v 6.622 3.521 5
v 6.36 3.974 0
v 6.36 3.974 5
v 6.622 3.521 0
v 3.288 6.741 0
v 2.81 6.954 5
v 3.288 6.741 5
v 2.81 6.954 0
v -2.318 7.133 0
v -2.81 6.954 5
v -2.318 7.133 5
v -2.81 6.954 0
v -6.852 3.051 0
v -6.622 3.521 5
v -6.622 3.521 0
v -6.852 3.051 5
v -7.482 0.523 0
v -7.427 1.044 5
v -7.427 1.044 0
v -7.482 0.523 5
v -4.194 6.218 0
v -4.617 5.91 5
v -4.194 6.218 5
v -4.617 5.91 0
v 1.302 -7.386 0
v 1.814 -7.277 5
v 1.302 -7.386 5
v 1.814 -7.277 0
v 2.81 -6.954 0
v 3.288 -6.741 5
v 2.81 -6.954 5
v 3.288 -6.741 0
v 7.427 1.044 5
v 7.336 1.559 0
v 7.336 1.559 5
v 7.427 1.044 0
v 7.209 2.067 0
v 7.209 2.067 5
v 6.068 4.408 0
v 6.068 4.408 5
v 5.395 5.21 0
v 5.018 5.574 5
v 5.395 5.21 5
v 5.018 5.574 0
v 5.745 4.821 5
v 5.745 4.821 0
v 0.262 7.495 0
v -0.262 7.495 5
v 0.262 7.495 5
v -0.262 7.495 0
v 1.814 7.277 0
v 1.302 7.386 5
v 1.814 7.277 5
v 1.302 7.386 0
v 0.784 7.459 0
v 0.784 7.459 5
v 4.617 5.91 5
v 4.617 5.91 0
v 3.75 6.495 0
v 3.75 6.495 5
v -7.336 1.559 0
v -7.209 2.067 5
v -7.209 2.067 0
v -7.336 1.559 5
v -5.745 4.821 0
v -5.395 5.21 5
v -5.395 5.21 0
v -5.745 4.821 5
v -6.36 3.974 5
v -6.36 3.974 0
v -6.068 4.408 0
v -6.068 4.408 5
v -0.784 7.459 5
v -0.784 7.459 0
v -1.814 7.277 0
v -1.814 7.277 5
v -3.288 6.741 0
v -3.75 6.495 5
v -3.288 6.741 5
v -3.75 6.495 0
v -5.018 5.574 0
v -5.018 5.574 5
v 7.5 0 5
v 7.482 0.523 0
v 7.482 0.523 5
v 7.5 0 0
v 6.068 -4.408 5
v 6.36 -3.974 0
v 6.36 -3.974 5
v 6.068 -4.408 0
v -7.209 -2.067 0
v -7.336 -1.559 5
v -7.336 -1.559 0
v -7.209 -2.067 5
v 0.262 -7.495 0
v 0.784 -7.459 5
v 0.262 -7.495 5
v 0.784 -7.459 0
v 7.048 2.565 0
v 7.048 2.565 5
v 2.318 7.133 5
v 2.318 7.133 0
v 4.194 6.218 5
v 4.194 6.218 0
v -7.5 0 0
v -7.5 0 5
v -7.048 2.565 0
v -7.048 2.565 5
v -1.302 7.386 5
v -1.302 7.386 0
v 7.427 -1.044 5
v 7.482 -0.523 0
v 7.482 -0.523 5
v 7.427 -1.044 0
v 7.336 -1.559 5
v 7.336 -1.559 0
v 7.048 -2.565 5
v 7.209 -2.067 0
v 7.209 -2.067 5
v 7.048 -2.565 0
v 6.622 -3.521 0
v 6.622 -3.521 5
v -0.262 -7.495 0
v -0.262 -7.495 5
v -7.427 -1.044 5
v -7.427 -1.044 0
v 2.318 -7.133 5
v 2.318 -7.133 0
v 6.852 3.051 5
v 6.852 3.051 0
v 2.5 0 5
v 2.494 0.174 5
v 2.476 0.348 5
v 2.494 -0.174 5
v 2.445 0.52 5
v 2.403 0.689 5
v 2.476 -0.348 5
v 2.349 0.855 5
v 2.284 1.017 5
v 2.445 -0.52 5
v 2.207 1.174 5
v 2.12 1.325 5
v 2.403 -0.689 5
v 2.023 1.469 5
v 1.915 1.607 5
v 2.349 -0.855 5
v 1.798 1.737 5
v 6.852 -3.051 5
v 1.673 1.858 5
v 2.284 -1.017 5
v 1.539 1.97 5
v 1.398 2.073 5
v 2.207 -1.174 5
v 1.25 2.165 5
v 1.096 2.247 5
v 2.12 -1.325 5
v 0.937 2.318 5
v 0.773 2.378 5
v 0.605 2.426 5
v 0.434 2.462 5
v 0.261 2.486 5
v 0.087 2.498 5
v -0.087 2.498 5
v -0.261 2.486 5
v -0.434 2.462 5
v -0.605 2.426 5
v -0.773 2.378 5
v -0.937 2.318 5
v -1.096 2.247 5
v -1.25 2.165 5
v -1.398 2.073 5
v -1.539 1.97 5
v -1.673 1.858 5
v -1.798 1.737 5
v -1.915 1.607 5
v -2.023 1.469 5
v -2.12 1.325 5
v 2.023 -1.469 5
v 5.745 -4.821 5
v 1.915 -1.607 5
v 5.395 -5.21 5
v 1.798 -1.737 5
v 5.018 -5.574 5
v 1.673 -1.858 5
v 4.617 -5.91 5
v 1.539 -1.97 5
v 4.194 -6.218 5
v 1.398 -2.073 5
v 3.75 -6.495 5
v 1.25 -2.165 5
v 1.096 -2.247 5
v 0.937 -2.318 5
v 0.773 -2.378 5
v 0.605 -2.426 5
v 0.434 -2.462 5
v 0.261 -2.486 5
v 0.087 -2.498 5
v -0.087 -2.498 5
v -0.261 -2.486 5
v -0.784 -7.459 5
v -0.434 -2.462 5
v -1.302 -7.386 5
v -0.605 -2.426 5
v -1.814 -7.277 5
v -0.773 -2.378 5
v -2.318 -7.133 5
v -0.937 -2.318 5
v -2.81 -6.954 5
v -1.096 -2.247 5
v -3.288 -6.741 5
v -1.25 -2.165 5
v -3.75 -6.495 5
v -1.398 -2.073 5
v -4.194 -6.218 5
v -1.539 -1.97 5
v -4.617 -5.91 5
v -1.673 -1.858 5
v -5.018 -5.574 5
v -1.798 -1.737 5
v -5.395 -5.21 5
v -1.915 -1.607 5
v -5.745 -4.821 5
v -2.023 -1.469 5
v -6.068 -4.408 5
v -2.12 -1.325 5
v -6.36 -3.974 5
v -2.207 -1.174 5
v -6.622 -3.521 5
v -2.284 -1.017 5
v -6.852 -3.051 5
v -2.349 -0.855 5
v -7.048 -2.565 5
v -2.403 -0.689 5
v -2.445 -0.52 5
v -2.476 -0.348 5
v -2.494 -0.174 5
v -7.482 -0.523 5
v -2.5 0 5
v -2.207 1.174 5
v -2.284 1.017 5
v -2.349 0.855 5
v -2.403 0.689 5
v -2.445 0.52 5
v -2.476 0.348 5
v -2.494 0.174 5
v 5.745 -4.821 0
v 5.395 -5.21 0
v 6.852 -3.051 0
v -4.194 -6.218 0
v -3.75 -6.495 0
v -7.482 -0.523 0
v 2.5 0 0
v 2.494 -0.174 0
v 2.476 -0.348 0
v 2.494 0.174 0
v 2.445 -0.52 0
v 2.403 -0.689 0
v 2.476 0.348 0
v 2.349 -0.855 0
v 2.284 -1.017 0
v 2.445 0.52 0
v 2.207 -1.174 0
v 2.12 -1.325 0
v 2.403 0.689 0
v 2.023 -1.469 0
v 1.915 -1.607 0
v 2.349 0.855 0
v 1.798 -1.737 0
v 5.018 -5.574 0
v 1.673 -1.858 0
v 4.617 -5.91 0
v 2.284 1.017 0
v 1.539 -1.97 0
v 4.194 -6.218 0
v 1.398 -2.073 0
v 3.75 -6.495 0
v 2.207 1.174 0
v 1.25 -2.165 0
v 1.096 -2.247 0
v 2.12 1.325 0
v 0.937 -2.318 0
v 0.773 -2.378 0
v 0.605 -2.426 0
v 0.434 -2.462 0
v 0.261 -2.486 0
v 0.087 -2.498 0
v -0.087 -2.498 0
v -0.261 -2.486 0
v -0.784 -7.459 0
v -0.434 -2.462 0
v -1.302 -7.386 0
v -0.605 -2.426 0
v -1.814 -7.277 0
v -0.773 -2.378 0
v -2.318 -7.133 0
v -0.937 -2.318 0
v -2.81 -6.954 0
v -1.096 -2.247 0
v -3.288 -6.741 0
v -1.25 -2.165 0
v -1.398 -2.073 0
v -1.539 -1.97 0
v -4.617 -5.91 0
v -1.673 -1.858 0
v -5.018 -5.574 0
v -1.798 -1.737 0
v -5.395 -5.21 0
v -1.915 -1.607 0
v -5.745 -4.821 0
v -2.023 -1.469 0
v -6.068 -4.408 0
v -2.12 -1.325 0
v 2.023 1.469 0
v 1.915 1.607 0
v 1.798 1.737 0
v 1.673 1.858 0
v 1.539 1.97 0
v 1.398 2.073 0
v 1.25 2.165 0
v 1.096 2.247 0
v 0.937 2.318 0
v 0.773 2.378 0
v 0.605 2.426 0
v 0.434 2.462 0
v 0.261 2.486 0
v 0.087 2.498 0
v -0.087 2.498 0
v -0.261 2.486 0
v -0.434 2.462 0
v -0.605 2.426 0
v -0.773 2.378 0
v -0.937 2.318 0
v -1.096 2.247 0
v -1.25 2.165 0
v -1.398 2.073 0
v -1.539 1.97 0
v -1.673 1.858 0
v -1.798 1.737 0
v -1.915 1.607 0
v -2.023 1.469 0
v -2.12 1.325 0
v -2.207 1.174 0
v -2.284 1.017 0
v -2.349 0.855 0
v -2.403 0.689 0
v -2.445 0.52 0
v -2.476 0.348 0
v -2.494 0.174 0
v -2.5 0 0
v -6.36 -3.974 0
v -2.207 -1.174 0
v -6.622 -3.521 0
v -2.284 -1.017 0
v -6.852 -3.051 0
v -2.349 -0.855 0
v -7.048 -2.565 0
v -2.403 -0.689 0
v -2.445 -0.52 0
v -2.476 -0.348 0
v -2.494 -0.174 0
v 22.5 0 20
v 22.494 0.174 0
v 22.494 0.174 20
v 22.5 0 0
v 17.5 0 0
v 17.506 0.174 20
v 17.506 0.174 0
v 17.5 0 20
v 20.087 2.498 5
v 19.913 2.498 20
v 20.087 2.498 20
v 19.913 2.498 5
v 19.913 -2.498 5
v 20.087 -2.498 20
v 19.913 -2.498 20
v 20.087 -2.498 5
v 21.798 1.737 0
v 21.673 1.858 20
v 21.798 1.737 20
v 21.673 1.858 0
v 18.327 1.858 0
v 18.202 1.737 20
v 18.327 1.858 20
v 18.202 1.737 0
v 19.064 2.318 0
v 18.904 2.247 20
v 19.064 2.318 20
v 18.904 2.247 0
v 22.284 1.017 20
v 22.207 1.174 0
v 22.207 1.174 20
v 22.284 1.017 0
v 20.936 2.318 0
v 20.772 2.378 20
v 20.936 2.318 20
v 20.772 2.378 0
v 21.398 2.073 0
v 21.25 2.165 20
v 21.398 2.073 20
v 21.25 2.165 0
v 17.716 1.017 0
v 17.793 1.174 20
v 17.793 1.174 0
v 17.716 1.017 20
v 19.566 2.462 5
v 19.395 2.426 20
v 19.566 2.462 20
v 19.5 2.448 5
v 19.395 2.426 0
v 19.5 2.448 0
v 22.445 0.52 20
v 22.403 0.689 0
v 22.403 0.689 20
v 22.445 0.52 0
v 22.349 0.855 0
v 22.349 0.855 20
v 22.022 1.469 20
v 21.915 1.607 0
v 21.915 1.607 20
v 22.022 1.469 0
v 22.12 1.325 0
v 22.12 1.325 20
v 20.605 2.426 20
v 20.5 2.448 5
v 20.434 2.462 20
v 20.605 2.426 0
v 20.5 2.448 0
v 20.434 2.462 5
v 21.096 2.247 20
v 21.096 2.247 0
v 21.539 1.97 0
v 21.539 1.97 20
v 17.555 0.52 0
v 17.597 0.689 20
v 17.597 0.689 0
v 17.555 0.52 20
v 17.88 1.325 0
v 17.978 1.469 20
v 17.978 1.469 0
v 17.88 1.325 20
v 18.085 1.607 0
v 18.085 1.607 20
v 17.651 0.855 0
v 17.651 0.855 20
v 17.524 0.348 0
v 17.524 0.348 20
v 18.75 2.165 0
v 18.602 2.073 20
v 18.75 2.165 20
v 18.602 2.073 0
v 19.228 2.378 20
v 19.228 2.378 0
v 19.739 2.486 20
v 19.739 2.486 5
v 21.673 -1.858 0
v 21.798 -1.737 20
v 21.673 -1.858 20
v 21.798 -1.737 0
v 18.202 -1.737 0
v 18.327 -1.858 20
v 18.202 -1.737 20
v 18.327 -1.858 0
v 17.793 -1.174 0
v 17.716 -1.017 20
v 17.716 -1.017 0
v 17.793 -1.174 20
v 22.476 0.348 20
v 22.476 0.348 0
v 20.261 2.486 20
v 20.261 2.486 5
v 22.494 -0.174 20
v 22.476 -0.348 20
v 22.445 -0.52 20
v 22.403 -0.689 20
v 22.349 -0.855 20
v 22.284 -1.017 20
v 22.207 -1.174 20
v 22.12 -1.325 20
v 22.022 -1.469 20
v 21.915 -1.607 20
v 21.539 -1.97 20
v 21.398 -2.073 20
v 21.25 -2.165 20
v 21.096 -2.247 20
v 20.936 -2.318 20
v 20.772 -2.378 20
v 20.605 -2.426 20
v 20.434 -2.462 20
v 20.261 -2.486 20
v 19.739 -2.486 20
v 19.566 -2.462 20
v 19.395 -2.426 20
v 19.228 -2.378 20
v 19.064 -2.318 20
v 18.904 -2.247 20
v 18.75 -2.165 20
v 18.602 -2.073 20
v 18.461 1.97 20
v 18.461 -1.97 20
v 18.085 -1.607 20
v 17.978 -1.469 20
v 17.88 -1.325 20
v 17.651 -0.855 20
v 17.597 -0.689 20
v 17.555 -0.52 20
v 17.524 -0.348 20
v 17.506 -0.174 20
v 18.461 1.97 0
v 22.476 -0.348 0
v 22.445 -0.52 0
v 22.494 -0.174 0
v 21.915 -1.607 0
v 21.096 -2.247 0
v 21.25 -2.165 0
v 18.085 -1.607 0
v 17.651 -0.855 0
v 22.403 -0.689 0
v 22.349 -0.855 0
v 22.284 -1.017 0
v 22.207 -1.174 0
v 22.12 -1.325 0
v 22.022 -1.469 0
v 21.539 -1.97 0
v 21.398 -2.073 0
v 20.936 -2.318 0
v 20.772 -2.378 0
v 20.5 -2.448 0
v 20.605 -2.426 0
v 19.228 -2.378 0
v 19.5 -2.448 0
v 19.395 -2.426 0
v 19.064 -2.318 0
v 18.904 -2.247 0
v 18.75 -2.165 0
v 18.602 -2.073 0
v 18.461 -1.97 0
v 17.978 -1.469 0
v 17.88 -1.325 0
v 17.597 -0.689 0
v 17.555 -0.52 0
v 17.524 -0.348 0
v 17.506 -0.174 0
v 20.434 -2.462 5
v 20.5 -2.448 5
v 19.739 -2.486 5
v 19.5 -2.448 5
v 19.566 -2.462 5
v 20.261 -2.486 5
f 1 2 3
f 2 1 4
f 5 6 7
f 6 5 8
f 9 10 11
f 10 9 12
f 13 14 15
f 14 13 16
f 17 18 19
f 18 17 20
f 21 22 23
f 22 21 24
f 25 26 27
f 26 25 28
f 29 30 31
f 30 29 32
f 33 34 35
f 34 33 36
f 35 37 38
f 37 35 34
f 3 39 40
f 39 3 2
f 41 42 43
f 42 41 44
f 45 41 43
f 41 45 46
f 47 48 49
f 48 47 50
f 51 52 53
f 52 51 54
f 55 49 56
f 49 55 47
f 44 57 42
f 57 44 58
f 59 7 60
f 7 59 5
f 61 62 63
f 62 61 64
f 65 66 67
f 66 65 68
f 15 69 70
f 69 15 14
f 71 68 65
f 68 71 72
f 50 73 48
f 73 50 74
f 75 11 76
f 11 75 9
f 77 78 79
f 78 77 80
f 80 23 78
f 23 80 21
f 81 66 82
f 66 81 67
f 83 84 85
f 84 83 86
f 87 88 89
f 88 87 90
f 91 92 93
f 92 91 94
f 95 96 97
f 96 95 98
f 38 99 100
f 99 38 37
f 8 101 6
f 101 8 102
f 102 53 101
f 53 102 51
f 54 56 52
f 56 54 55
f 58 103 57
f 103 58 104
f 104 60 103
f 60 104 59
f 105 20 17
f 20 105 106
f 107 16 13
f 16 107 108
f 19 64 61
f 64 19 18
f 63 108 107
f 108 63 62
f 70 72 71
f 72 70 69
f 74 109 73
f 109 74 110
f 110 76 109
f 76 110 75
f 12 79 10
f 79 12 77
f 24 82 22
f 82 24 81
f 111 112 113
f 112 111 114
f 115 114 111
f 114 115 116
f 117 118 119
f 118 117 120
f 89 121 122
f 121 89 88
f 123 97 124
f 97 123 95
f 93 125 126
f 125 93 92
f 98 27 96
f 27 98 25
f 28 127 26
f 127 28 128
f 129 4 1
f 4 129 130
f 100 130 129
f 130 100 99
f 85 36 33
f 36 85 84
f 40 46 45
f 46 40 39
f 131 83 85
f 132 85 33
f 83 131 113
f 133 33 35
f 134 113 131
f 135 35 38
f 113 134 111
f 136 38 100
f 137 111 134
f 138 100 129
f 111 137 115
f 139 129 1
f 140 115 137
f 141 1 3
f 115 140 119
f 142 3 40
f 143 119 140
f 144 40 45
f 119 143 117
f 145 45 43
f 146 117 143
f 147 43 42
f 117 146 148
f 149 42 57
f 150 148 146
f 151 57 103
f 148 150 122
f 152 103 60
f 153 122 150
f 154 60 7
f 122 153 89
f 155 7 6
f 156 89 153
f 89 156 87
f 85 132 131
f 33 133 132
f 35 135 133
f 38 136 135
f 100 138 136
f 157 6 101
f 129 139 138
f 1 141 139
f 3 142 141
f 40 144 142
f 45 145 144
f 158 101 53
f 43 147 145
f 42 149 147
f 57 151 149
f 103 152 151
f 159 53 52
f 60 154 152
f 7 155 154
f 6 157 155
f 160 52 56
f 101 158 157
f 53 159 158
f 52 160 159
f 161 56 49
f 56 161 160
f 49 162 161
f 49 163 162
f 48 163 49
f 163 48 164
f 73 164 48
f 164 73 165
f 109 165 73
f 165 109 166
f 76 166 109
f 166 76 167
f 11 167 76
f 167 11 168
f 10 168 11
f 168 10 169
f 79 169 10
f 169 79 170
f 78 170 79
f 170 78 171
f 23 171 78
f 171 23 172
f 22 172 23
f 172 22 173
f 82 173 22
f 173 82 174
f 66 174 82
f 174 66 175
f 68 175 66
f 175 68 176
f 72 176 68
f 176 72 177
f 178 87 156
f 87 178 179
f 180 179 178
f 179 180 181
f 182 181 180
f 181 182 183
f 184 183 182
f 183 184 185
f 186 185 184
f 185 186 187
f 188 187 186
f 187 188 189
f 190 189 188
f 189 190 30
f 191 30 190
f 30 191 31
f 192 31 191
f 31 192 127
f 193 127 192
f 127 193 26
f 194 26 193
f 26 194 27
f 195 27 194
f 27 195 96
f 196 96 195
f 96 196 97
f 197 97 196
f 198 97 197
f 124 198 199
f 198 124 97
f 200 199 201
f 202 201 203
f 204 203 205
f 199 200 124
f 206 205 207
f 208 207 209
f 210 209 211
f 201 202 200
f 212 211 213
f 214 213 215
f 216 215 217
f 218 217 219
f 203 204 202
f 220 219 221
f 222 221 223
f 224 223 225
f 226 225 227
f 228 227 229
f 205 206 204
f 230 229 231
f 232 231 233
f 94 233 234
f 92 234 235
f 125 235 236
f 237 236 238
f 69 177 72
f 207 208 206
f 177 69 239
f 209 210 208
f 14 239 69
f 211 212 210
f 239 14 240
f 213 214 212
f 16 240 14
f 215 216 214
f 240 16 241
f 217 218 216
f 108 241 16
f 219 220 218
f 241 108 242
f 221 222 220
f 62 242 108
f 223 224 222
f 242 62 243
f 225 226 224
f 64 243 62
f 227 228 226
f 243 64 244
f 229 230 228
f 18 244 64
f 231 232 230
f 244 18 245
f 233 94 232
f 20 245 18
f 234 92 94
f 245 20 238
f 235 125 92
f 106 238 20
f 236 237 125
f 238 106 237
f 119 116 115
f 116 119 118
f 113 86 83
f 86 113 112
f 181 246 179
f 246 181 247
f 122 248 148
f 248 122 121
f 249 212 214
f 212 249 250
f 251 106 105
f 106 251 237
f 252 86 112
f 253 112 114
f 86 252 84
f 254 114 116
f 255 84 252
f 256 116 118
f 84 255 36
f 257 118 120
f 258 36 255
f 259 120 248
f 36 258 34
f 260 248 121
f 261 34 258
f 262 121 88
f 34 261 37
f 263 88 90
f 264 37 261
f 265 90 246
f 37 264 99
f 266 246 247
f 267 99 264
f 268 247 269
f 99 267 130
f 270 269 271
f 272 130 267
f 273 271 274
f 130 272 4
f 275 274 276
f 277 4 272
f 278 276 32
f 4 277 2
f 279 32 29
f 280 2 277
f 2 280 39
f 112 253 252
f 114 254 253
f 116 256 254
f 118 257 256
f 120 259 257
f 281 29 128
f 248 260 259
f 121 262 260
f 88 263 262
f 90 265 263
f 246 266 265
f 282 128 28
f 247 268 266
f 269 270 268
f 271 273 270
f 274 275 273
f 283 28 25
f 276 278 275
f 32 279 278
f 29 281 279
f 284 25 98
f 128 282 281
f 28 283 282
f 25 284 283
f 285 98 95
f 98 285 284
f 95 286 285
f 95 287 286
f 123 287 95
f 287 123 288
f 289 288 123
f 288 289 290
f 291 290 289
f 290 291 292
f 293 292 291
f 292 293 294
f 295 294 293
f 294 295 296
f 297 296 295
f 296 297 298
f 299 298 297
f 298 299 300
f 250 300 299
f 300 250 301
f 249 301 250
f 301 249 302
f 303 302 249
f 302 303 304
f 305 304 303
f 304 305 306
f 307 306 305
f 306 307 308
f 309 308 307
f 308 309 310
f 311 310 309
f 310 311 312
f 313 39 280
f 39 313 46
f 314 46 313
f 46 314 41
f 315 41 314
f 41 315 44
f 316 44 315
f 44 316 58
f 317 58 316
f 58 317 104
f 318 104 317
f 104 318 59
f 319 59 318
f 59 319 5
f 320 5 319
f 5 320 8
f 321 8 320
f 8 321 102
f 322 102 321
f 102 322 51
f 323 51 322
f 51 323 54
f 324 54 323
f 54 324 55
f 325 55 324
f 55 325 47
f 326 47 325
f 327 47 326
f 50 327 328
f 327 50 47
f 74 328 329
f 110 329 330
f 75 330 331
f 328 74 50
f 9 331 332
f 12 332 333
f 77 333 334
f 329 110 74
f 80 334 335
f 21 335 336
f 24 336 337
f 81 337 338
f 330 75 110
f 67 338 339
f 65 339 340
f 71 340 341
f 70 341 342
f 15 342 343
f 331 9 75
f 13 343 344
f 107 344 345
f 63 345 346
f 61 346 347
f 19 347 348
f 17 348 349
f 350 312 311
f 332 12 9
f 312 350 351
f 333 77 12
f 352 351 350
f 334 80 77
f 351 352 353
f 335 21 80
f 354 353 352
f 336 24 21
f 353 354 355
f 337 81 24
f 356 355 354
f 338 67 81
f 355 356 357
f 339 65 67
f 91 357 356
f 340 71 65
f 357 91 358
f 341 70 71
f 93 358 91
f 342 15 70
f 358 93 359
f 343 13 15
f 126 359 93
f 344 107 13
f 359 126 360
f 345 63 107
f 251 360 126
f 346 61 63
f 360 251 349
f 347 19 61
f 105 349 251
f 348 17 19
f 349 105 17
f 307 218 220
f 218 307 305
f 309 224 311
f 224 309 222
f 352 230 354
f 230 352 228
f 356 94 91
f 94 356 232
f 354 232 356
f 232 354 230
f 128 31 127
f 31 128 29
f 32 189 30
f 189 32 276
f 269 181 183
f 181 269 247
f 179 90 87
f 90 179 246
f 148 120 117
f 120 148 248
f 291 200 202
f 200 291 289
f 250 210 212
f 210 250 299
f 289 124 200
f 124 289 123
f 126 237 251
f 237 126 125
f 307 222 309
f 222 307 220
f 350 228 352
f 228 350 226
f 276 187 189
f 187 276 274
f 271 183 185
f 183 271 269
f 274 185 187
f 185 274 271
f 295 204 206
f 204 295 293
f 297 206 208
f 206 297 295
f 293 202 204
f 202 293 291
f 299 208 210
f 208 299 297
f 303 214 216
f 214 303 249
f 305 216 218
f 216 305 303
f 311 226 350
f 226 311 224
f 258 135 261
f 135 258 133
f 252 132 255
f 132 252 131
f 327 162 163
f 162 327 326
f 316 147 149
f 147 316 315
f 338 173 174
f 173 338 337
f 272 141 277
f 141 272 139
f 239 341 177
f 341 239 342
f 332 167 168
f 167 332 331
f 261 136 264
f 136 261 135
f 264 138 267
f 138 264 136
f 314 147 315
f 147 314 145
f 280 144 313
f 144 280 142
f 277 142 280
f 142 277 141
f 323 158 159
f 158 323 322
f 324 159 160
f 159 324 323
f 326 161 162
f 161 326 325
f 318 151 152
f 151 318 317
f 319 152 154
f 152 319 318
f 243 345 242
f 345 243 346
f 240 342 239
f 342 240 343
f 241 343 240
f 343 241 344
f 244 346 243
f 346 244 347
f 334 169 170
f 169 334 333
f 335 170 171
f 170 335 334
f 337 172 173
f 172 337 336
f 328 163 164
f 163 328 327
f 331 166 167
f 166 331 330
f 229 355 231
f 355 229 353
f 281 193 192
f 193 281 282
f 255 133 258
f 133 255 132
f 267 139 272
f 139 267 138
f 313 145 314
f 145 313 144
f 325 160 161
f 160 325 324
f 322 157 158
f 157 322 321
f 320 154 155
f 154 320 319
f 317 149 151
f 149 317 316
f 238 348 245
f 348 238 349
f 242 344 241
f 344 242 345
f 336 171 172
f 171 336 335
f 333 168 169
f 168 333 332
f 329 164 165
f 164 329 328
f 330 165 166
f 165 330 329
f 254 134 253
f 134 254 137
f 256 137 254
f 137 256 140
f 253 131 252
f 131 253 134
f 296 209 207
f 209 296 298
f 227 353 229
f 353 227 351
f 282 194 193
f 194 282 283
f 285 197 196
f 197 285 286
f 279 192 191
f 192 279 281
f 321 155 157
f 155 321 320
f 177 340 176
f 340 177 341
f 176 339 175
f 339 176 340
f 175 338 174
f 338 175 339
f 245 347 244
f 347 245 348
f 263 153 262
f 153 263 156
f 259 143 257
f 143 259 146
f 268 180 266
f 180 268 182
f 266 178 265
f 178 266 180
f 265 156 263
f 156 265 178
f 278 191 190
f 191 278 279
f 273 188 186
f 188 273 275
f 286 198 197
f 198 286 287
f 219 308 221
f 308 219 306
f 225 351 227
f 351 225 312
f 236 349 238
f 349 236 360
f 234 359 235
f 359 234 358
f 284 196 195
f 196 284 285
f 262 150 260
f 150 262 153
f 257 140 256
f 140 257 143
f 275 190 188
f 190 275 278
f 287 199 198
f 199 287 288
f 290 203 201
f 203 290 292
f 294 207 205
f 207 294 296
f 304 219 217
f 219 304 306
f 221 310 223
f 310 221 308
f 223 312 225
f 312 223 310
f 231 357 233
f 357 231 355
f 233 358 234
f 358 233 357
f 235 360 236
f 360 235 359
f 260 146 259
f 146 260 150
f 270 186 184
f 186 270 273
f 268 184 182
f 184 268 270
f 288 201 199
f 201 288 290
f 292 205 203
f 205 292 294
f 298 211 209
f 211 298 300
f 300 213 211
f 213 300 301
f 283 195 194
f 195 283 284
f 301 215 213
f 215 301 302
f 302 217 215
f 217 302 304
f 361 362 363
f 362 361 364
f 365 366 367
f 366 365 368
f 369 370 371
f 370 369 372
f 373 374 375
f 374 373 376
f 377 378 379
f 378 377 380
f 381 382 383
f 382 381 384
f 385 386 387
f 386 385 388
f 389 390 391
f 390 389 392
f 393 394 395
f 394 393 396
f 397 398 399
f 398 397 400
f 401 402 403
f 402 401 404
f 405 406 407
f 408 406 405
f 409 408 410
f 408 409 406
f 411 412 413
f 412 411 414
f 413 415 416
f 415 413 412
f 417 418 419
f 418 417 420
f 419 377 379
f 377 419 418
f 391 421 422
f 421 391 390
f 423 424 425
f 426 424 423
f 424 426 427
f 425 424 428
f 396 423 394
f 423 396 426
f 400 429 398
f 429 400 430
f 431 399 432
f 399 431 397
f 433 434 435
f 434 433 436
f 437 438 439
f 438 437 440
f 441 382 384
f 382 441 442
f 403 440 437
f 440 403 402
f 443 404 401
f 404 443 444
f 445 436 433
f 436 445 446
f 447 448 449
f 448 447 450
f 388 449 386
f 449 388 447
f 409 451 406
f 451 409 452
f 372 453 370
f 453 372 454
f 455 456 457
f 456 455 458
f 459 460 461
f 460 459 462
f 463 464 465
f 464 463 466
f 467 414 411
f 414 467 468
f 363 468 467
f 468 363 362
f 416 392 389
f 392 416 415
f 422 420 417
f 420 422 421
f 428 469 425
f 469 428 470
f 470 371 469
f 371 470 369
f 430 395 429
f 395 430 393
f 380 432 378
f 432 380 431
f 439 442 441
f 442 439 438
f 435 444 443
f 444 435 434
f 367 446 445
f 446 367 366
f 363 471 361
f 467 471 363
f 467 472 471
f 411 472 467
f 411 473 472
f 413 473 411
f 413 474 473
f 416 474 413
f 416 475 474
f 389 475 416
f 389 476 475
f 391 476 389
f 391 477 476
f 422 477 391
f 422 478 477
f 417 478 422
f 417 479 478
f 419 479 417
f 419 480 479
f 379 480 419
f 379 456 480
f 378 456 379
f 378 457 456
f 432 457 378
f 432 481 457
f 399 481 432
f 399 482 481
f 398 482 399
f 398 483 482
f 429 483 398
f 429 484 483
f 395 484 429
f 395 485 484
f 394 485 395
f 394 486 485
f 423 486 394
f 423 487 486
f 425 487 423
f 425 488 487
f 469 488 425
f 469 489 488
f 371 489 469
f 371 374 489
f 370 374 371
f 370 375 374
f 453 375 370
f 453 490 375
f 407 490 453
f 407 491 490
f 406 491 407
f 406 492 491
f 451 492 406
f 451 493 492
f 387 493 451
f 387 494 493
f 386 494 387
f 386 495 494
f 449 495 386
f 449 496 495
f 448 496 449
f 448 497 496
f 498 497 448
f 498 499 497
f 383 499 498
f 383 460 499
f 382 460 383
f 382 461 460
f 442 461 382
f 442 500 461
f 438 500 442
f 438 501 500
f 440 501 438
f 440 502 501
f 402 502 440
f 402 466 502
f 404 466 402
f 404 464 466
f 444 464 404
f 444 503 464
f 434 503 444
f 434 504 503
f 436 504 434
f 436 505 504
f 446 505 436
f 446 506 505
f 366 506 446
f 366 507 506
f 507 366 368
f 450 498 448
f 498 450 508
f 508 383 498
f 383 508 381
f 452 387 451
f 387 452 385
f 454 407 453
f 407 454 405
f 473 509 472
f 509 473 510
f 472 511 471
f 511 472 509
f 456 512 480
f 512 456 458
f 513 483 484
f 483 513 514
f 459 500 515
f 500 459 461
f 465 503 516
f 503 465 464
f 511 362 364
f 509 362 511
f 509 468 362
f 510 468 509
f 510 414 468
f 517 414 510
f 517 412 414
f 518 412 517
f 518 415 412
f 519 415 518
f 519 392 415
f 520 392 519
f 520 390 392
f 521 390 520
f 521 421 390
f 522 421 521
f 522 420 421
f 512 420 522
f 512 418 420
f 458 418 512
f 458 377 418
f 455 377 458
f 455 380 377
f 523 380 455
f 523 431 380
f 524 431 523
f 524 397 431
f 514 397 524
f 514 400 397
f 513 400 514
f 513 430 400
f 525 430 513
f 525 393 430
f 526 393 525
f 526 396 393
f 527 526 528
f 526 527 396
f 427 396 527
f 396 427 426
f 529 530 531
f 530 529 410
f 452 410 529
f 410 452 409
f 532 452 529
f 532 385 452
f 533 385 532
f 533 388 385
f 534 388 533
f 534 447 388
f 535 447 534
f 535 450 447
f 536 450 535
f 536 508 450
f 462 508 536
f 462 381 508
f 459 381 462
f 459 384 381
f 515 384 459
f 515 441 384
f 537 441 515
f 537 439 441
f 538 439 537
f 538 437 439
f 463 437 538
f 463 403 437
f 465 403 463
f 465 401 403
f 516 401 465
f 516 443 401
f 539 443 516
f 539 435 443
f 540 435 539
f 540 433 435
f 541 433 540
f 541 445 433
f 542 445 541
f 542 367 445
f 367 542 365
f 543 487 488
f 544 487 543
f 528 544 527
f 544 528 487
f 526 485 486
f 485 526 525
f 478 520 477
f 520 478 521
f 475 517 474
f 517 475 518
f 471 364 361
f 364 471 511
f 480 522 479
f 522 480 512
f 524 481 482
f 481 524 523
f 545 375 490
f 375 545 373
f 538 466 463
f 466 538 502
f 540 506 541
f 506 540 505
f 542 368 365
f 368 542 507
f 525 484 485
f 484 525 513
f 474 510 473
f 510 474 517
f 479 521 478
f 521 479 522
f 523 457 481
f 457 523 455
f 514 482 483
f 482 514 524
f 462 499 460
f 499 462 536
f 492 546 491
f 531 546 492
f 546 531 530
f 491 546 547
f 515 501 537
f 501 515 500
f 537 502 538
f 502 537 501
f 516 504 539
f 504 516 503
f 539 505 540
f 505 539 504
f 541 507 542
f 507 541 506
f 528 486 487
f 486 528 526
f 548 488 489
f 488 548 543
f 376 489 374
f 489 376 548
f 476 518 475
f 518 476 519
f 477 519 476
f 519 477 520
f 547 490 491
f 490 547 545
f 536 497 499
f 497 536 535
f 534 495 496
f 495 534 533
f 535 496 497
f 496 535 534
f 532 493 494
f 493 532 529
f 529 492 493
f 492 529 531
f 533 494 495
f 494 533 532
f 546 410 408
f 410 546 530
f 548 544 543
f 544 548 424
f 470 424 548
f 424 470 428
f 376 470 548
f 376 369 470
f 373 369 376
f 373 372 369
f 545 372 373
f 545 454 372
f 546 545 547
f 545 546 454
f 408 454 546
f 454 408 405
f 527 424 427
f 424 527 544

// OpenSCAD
$fn=90;

difference(){
	cylinder(d=15, h=5);
	cylinder(d=5, h=5);
}

translate([20, 0, 0])
	difference(){
		cylinder(d=5, h=20);
		#cube([1, 10, 10], center = true);
	}
